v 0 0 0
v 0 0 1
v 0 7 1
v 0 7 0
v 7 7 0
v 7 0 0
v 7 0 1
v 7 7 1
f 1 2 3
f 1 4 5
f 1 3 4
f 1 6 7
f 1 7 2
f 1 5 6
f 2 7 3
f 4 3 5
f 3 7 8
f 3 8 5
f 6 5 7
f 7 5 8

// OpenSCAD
/* Warning, this is a very basic generator with a lot of approximation 
input data : [VQFN, Y3X, 7x7x1.0mm, 48, , B, C04-00182B]
generated by com.zoubworld.electronics.cad.model3d.Basic
Date : Sun Feb 15 10:50:48 CET 2026
*/

//body
color("black")
translate([0,0,0])
cube([7.0,7.0,1.0], center=false);
